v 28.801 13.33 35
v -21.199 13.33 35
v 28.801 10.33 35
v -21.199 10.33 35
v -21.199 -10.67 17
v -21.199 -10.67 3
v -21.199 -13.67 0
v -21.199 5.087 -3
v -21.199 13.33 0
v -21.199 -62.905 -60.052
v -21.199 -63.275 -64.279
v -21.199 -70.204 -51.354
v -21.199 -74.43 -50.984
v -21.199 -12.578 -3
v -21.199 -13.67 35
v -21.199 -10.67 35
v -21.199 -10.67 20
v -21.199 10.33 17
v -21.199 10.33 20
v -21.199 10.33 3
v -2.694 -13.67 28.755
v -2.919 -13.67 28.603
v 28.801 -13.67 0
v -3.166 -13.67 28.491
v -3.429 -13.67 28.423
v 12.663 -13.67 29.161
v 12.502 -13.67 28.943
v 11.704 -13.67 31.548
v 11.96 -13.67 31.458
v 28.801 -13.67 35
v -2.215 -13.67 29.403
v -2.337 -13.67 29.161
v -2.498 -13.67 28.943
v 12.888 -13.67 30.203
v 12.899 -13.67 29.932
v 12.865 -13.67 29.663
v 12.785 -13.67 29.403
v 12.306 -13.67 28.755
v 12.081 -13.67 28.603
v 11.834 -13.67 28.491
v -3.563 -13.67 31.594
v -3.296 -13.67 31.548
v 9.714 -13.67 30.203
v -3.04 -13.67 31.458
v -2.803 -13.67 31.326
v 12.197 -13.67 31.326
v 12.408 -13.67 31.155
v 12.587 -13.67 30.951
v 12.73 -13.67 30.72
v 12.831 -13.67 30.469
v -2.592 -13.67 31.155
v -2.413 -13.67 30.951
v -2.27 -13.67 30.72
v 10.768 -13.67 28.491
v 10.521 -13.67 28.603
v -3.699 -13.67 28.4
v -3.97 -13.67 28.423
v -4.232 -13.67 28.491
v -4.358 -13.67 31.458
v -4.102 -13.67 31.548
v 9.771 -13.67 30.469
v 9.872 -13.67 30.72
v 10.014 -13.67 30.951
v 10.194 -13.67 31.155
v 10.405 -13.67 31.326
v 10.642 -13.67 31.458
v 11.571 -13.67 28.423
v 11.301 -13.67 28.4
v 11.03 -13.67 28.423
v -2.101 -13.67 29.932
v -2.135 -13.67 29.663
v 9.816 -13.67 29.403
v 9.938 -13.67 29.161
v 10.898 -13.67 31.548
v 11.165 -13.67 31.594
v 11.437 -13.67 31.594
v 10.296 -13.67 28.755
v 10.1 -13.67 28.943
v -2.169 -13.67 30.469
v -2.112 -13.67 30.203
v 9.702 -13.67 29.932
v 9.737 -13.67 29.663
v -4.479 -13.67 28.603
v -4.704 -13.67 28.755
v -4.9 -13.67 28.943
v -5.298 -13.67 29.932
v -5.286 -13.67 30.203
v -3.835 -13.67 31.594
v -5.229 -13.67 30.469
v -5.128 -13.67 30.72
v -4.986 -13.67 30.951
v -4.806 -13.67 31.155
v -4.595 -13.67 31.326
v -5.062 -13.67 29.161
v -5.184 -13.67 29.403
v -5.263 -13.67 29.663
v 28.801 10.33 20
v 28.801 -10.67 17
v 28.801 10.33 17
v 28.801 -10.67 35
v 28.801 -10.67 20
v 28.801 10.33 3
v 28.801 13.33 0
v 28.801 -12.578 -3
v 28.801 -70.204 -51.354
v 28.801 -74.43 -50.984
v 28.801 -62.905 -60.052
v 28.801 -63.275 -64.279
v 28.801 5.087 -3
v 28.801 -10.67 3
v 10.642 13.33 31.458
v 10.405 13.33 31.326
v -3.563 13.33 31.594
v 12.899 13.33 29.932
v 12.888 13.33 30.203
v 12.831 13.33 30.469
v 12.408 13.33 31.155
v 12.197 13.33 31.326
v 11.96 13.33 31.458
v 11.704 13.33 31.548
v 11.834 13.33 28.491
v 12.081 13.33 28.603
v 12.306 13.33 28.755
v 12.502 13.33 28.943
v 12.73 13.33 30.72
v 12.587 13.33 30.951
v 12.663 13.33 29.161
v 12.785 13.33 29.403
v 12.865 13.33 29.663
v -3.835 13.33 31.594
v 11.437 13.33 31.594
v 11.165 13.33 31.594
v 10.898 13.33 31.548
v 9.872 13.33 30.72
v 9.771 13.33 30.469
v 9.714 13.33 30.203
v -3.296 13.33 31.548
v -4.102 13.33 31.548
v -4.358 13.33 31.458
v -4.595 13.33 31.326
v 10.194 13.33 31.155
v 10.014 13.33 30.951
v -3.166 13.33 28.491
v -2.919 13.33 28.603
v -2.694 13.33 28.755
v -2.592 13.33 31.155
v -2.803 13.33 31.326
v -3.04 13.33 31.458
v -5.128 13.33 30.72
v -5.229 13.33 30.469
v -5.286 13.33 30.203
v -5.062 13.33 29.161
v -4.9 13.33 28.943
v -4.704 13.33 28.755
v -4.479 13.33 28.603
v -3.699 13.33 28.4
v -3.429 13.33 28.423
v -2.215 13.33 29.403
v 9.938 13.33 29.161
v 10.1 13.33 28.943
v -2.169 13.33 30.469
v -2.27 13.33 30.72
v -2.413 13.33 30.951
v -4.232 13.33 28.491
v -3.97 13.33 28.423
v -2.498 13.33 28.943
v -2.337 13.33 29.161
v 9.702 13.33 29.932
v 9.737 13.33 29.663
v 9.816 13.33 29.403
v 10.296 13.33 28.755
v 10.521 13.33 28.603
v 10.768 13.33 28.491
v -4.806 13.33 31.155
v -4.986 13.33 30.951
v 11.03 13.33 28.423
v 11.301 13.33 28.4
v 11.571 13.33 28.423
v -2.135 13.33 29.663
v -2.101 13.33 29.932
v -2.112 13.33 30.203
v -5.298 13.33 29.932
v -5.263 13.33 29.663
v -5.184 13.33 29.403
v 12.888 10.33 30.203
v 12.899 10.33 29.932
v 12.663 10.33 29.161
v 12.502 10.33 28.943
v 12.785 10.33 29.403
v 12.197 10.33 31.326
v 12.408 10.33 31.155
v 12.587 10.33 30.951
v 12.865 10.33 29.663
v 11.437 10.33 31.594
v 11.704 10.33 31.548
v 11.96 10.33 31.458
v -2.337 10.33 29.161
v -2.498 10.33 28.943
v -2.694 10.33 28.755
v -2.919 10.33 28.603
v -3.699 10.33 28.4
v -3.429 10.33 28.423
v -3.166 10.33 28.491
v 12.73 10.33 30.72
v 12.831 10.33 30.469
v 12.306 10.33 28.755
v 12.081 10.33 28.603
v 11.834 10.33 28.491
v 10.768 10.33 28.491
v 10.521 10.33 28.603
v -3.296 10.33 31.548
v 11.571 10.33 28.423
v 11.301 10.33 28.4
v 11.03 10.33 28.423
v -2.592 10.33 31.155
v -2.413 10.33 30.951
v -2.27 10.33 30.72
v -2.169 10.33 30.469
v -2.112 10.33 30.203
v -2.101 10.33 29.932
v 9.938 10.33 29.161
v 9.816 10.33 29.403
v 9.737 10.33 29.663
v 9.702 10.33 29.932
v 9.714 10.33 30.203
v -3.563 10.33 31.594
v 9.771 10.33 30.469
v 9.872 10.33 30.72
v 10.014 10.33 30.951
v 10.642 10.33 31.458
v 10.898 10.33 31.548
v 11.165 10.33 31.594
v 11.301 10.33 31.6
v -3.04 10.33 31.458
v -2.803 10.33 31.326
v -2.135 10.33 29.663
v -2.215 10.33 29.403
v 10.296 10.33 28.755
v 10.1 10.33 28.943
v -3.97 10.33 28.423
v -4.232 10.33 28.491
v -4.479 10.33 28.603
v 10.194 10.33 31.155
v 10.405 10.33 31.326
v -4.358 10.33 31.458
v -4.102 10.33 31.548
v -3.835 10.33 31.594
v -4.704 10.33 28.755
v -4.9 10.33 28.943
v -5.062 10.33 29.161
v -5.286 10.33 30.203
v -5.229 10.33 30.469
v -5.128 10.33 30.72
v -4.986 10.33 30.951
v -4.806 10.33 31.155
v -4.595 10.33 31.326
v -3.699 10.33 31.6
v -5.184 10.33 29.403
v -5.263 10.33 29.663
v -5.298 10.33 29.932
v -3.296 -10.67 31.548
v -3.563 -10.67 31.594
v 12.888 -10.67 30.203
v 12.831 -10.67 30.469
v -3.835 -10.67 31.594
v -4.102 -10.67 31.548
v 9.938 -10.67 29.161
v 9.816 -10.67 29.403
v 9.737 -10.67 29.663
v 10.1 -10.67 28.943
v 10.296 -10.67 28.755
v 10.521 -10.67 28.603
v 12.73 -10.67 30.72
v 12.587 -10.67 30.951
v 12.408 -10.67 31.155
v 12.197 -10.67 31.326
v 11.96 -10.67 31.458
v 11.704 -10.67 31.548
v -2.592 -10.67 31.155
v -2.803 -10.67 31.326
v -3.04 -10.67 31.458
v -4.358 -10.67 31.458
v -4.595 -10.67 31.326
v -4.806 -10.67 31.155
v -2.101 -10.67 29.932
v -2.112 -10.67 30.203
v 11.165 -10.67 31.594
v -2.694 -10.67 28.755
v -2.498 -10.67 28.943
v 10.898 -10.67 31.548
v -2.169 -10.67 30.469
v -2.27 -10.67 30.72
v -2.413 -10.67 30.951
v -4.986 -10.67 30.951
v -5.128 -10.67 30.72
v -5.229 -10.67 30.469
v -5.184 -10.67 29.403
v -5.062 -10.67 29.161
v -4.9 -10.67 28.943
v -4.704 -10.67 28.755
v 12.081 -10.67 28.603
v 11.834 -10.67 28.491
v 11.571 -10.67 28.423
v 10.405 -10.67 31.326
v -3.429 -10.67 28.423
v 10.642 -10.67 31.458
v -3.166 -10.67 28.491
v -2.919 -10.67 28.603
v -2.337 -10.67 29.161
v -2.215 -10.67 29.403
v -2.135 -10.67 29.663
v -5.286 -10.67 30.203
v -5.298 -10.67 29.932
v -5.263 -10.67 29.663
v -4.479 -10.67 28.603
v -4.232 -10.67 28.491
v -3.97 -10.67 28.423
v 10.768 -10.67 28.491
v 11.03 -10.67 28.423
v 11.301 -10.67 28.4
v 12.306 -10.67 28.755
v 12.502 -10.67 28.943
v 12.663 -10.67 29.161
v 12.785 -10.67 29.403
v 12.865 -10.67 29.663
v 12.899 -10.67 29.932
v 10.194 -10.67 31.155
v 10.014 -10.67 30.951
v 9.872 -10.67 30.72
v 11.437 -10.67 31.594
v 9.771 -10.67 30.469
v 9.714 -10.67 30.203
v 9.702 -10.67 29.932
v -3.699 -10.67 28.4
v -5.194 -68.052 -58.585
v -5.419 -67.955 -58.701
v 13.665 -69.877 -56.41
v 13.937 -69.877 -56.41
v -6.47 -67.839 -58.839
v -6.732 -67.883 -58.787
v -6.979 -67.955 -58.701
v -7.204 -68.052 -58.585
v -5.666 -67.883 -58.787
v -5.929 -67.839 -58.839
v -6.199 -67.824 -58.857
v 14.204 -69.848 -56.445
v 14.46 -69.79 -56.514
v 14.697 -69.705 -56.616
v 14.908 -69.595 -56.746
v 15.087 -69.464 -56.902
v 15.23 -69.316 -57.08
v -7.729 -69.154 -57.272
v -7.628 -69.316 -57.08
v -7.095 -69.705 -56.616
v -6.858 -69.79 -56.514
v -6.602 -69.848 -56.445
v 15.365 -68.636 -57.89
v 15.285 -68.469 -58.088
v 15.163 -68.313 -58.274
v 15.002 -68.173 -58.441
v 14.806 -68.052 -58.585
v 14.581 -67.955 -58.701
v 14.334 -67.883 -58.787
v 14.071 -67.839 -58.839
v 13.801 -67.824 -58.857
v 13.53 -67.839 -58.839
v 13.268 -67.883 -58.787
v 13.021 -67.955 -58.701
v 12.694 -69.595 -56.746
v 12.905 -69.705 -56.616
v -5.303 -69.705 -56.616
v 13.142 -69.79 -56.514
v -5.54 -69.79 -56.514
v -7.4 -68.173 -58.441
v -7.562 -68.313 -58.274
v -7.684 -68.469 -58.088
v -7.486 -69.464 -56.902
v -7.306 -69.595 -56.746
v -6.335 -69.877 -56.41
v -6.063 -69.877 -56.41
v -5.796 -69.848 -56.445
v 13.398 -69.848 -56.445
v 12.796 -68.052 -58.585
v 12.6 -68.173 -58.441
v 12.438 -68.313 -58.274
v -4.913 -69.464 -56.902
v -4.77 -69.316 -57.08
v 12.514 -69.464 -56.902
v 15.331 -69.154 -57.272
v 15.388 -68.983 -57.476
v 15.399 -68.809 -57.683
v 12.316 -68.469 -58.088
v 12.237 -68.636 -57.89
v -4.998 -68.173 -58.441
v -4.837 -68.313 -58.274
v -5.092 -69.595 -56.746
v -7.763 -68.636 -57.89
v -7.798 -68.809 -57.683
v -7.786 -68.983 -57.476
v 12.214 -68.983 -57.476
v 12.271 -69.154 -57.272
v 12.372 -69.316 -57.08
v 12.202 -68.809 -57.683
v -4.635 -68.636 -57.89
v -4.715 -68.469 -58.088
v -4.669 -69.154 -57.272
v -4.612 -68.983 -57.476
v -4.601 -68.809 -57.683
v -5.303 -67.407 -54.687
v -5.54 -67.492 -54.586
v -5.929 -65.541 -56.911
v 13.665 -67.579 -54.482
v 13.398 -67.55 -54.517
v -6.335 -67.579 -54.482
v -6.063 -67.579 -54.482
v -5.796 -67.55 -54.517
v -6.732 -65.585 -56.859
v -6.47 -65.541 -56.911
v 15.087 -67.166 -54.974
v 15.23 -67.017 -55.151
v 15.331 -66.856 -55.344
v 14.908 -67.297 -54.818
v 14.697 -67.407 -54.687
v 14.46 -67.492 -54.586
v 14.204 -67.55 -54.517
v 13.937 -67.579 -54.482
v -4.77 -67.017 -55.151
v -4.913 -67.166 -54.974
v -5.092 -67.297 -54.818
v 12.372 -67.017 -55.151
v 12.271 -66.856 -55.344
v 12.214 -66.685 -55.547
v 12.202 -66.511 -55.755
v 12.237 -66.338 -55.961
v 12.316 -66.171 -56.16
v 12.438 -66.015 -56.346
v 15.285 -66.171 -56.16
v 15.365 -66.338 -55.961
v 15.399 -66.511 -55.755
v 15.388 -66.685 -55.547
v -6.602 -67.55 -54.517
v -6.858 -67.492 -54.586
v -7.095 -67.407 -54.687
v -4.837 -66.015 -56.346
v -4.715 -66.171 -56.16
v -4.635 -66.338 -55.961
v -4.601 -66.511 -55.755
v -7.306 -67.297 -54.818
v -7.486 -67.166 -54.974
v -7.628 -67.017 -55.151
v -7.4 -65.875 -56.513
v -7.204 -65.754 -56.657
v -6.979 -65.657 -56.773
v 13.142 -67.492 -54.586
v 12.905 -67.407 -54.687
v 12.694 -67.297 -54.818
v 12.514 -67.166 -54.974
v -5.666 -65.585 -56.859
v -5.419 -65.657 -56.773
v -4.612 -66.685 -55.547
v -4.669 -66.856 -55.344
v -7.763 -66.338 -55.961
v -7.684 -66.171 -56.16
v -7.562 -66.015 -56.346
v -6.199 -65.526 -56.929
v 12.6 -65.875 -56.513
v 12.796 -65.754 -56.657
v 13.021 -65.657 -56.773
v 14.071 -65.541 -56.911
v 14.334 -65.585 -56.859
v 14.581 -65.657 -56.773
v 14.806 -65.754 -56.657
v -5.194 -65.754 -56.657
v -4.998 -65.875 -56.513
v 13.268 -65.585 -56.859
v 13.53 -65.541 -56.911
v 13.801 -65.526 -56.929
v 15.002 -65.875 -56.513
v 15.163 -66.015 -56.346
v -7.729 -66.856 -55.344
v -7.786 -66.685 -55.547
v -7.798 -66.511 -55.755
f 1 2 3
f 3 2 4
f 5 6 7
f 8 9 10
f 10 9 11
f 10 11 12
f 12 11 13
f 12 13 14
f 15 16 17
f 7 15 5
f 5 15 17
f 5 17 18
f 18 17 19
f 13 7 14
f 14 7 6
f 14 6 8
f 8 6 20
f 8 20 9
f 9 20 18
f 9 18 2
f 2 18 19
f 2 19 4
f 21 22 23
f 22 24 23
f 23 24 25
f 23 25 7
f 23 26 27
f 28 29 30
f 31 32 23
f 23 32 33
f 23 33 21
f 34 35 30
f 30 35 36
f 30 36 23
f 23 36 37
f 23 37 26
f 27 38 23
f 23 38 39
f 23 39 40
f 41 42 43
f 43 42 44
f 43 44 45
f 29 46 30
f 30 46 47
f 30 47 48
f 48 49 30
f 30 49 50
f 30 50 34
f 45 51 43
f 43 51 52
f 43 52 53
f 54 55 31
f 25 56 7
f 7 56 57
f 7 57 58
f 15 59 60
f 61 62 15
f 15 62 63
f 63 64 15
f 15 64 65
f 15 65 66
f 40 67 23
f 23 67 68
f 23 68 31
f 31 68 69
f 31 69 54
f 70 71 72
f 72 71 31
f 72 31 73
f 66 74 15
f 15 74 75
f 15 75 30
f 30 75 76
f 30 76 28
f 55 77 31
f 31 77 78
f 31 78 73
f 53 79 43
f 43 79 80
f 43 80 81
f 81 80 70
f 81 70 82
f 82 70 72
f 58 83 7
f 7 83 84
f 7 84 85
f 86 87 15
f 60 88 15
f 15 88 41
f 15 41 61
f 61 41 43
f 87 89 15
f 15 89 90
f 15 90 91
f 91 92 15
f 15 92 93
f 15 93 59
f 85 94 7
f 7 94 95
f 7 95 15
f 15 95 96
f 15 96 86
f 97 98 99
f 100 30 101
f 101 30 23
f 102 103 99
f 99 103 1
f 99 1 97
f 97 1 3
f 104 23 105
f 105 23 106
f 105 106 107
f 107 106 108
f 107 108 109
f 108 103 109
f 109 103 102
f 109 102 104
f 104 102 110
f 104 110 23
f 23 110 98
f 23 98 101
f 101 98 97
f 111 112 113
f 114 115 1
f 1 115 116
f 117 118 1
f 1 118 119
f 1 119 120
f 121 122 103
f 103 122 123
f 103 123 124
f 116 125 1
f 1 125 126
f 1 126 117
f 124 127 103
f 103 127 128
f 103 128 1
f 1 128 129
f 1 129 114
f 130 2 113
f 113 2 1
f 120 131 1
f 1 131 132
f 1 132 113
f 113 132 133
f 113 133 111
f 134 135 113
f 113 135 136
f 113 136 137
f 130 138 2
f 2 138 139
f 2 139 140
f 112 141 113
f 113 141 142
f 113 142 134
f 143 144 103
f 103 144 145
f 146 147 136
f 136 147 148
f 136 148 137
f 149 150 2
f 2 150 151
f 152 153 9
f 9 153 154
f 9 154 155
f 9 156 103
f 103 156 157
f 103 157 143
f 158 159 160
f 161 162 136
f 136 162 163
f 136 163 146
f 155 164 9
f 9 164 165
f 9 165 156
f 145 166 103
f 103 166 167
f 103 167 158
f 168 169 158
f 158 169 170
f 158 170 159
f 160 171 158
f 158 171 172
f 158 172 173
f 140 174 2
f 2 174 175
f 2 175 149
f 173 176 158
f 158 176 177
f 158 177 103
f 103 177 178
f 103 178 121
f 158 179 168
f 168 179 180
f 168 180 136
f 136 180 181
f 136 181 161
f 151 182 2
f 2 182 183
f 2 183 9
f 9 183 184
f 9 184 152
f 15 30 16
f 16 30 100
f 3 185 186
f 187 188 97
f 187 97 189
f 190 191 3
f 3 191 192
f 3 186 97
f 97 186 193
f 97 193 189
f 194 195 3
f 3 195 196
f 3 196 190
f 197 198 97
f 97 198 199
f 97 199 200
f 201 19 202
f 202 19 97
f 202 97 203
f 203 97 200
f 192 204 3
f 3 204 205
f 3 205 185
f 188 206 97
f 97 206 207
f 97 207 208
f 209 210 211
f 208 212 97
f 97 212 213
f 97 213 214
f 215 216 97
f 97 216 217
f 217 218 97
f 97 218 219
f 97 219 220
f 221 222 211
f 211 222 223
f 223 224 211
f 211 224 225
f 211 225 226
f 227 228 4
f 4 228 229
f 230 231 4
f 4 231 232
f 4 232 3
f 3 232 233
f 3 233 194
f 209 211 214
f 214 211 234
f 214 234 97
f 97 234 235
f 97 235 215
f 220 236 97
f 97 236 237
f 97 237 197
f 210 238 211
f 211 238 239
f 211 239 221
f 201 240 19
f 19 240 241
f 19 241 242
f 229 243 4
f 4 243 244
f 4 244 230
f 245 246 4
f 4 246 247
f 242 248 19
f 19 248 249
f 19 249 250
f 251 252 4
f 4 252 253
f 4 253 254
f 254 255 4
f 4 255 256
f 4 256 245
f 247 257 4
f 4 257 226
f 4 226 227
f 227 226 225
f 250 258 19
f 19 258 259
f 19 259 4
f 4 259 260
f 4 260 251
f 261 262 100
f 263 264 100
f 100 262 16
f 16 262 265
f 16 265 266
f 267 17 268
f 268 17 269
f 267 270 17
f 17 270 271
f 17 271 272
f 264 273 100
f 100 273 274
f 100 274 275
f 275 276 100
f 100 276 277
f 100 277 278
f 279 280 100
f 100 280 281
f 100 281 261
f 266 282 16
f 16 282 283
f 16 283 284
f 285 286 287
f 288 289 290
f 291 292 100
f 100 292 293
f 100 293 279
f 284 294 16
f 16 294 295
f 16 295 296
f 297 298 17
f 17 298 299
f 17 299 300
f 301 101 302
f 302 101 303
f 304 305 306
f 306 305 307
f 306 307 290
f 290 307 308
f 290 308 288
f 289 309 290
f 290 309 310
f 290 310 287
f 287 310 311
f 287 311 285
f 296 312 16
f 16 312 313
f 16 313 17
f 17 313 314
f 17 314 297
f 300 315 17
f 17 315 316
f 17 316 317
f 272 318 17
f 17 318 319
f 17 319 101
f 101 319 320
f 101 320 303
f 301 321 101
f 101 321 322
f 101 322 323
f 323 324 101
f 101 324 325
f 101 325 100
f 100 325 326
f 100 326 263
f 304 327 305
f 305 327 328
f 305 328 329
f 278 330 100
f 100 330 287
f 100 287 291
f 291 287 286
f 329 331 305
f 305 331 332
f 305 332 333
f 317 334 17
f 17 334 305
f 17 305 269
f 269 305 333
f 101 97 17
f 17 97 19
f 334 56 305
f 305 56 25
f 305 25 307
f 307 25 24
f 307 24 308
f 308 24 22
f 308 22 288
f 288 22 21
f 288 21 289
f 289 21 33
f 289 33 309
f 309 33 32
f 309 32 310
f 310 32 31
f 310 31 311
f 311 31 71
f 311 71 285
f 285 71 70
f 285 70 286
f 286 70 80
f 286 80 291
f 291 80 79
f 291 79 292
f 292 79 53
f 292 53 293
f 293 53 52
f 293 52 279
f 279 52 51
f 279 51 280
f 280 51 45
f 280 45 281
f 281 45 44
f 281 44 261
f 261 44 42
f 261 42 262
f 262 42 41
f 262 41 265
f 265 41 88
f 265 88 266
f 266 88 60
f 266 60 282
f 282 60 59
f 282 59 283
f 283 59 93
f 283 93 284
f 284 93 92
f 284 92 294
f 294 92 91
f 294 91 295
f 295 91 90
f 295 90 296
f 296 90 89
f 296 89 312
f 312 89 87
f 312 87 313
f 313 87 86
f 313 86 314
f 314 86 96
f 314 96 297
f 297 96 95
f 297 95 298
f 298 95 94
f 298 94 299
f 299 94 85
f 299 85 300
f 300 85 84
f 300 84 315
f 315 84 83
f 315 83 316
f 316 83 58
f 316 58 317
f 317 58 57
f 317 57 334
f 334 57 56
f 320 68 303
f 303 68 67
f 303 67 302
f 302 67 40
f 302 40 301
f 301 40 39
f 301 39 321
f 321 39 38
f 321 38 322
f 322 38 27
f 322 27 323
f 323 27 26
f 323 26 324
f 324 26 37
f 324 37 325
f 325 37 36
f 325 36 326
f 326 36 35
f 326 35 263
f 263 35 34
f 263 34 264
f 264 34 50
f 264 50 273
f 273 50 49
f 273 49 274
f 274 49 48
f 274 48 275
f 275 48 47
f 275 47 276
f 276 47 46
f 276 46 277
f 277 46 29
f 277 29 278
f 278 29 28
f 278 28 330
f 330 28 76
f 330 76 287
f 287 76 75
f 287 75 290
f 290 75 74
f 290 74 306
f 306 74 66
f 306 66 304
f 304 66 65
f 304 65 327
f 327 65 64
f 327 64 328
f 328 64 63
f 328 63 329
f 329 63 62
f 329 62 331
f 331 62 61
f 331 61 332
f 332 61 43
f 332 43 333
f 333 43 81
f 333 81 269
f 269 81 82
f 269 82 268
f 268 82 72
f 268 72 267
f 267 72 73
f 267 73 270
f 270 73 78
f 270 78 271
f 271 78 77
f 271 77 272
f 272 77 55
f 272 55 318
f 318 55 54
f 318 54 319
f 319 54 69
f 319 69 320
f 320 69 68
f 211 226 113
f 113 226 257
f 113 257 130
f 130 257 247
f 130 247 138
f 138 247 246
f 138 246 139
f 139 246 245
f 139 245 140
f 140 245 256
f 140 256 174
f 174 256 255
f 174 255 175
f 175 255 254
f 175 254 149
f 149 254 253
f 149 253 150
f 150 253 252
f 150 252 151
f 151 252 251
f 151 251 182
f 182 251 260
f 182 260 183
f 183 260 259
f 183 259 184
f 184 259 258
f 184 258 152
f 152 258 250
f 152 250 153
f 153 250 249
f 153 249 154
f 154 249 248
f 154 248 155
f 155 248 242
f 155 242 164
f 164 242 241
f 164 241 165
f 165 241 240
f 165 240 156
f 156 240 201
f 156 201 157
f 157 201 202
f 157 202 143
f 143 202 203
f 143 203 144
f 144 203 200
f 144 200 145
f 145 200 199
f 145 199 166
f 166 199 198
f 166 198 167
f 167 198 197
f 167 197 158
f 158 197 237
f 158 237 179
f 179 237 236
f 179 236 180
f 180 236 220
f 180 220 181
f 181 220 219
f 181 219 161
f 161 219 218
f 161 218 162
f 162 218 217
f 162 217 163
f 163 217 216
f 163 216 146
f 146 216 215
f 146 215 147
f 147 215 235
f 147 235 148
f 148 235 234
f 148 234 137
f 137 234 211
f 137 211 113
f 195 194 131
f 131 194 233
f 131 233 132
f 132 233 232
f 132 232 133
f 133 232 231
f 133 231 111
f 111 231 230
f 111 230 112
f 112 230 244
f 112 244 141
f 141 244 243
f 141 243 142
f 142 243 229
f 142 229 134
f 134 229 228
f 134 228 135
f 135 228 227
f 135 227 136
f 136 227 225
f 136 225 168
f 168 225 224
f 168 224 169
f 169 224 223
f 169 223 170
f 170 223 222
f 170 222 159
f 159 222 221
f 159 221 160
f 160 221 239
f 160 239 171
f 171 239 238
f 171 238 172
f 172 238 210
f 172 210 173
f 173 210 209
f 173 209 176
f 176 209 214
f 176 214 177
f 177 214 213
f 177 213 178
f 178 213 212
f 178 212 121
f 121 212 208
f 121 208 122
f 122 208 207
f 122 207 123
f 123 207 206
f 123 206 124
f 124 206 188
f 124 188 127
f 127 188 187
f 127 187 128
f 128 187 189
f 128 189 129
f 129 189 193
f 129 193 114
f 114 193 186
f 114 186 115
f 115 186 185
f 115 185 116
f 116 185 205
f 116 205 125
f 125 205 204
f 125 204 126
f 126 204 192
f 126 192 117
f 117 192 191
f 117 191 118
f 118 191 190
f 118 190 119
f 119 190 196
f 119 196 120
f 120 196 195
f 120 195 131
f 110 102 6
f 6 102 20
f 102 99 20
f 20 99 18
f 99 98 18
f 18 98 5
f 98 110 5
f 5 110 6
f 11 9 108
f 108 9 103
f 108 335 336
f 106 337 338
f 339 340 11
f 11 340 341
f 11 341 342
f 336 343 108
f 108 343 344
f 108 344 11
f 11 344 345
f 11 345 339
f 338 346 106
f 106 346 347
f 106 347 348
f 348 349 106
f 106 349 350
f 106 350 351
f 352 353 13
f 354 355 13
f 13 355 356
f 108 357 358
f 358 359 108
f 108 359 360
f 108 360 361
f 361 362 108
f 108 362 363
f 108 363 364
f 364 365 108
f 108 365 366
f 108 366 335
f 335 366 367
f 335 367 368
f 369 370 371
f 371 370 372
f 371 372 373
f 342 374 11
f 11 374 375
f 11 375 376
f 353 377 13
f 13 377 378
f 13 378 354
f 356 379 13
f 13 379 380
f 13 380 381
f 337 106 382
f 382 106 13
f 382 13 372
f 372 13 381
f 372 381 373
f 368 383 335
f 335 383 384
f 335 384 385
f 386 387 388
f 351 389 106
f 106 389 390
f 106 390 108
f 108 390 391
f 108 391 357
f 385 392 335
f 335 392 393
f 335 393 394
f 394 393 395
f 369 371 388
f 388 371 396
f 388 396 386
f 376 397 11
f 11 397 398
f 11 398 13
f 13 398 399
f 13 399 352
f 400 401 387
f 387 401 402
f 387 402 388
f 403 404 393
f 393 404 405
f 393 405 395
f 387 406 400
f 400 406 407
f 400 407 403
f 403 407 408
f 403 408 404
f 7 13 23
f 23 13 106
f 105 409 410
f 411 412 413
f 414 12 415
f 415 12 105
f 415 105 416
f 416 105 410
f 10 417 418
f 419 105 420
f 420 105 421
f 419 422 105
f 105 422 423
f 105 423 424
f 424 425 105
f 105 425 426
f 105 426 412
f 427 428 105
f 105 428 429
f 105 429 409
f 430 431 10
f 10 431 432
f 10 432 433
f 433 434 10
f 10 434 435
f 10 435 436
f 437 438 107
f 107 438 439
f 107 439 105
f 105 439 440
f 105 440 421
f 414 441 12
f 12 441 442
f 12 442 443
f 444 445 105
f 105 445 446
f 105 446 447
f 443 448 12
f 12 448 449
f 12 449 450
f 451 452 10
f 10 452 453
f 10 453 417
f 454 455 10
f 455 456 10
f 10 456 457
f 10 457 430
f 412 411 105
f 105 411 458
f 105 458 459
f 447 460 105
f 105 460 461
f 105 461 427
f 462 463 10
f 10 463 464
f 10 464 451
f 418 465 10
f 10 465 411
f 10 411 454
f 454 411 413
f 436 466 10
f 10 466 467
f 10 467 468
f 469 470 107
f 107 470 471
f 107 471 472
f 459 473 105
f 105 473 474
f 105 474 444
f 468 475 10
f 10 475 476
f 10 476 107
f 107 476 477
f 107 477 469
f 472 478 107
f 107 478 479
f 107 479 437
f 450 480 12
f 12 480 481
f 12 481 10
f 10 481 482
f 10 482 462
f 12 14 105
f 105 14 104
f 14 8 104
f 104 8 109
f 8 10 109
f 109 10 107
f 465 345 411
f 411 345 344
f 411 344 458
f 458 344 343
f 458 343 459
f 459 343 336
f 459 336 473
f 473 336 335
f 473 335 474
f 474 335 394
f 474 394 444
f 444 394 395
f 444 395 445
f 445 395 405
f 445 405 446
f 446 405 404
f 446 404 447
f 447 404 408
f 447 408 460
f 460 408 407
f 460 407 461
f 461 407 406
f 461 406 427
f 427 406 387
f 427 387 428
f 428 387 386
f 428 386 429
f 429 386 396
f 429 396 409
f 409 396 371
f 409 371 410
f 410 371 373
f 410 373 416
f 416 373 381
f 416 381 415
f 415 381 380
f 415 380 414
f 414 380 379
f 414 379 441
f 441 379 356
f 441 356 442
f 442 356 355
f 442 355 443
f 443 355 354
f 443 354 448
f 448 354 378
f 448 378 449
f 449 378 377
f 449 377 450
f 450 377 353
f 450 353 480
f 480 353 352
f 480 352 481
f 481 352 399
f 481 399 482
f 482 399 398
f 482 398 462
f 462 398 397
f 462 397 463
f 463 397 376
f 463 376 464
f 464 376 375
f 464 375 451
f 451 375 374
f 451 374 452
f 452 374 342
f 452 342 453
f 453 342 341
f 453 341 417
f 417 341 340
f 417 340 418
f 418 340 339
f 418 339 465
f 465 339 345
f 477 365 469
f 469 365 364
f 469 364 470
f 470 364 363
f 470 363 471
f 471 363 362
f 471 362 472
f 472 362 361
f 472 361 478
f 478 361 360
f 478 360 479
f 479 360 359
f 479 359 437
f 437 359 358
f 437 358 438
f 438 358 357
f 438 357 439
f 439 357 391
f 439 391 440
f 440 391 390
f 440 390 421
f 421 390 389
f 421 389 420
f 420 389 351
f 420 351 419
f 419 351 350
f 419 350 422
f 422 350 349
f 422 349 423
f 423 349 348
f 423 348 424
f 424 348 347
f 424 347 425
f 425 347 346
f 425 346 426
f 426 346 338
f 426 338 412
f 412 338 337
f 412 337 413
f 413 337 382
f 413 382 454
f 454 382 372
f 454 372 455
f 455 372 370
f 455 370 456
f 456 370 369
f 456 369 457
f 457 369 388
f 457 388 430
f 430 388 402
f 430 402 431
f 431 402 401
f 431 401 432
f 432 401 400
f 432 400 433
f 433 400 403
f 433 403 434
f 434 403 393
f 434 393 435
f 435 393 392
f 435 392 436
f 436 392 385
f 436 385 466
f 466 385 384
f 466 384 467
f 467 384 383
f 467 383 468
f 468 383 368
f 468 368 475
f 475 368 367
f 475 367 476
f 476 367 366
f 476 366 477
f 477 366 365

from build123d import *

# Parameters (mm, degrees)
SKETCH_1_W          = 50
SKETCH_1_H          = 27
EXTRUDE_1_DEPTH     = 35
SKETCH_2_W          = 50
SKETCH_2_H          = 21
CUT_EXTRUDE_1_DEPTH = 15
SKETCH_3_R          = 1.6
CUT_EXTRUDE_2_DEPTH = 28
SKETCH_4_W          = 14
SKETCH_4_H          = 21
CUT_EXTRUDE_3_DEPTH = 51
EXTRUDE_2_DEPTH     = 50
CUT_EXTRUDE_4_DEPTH = 51
SKETCH_8_R          = 1.6
CUT_EXTRUDE_5_DEPTH = 50


with BuildPart() as part:
    # 草图1 → 凸台-拉伸1 (new body)
    with BuildSketch(Plane.XY):
        with Locations((3.800856531, -0.170235546)):
            Rectangle(SKETCH_1_W, SKETCH_1_H)
    extrude(amount=EXTRUDE_1_DEPTH)

    # 草图2 → 切除-拉伸1 (cut)
    with BuildSketch(Plane.XY.offset(35)):
        with Locations((3.800856531, -0.170235546)):
            Rectangle(SKETCH_2_W, SKETCH_2_H)
    extrude(amount=-CUT_EXTRUDE_1_DEPTH, mode=Mode.SUBTRACT)

    # 草图3 → 切除-拉伸2 (cut, through all)
    with BuildSketch(Plane.XZ.offset(13.670235546)):
        with Locations((-3.699143469, 30)):
            Circle(SKETCH_3_R)
        with Locations((11.300856531, 30)):
            Circle(SKETCH_3_R)
    extrude(amount=-CUT_EXTRUDE_2_DEPTH, mode=Mode.SUBTRACT)

    # 草图4 → 切除-拉伸3 (cut, through all)
    with BuildSketch(Plane.ZY.offset(21.199143469)):
        with Locations((10, -0.170235546)):
            Rectangle(SKETCH_4_W, SKETCH_4_H)
    extrude(amount=-CUT_EXTRUDE_3_DEPTH, mode=Mode.SUBTRACT)

    # 草图6 → 凸台-拉伸2 (add)
    with BuildSketch(Plane(origin=(28.800856531, 0, 0), x_dir=(0, 0, -1), z_dir=(1, 0, 0))):
        Polygon((0, -13.670235546), (50.983856303, -74.430429459), (64.278760969, -63.274679858), (0, 13.329764454), align=None)
    extrude(amount=-EXTRUDE_2_DEPTH)

    # 草图7 → 切除-拉伸4 (cut, through all)
    with BuildSketch(Plane(origin=(28.800856531, 0, 0), x_dir=(0, 0, -1), z_dir=(1, 0, 0))):
        Polygon((60.05226481, -62.904909358), (3, 5.087332196), (3, -12.578324843), (51.353626803, -70.203933301), align=None)
    extrude(amount=-CUT_EXTRUDE_4_DEPTH, mode=Mode.SUBTRACT)

    # 草图8 → 切除-拉伸5 (cut)
    with BuildSketch(Plane(origin=(0, -68.782217432, -57.715133279), x_dir=(-1, 0, 0), z_dir=(0, -0.766044443, -0.64278761))):
        with Locations((-13.800856531, -0.1094253)):
            Circle(SKETCH_8_R)
        with Locations((6.199143469, -0.1094253)):
            Circle(SKETCH_8_R)
    extrude(amount=-CUT_EXTRUDE_5_DEPTH, mode=Mode.SUBTRACT)


solid = part.part
